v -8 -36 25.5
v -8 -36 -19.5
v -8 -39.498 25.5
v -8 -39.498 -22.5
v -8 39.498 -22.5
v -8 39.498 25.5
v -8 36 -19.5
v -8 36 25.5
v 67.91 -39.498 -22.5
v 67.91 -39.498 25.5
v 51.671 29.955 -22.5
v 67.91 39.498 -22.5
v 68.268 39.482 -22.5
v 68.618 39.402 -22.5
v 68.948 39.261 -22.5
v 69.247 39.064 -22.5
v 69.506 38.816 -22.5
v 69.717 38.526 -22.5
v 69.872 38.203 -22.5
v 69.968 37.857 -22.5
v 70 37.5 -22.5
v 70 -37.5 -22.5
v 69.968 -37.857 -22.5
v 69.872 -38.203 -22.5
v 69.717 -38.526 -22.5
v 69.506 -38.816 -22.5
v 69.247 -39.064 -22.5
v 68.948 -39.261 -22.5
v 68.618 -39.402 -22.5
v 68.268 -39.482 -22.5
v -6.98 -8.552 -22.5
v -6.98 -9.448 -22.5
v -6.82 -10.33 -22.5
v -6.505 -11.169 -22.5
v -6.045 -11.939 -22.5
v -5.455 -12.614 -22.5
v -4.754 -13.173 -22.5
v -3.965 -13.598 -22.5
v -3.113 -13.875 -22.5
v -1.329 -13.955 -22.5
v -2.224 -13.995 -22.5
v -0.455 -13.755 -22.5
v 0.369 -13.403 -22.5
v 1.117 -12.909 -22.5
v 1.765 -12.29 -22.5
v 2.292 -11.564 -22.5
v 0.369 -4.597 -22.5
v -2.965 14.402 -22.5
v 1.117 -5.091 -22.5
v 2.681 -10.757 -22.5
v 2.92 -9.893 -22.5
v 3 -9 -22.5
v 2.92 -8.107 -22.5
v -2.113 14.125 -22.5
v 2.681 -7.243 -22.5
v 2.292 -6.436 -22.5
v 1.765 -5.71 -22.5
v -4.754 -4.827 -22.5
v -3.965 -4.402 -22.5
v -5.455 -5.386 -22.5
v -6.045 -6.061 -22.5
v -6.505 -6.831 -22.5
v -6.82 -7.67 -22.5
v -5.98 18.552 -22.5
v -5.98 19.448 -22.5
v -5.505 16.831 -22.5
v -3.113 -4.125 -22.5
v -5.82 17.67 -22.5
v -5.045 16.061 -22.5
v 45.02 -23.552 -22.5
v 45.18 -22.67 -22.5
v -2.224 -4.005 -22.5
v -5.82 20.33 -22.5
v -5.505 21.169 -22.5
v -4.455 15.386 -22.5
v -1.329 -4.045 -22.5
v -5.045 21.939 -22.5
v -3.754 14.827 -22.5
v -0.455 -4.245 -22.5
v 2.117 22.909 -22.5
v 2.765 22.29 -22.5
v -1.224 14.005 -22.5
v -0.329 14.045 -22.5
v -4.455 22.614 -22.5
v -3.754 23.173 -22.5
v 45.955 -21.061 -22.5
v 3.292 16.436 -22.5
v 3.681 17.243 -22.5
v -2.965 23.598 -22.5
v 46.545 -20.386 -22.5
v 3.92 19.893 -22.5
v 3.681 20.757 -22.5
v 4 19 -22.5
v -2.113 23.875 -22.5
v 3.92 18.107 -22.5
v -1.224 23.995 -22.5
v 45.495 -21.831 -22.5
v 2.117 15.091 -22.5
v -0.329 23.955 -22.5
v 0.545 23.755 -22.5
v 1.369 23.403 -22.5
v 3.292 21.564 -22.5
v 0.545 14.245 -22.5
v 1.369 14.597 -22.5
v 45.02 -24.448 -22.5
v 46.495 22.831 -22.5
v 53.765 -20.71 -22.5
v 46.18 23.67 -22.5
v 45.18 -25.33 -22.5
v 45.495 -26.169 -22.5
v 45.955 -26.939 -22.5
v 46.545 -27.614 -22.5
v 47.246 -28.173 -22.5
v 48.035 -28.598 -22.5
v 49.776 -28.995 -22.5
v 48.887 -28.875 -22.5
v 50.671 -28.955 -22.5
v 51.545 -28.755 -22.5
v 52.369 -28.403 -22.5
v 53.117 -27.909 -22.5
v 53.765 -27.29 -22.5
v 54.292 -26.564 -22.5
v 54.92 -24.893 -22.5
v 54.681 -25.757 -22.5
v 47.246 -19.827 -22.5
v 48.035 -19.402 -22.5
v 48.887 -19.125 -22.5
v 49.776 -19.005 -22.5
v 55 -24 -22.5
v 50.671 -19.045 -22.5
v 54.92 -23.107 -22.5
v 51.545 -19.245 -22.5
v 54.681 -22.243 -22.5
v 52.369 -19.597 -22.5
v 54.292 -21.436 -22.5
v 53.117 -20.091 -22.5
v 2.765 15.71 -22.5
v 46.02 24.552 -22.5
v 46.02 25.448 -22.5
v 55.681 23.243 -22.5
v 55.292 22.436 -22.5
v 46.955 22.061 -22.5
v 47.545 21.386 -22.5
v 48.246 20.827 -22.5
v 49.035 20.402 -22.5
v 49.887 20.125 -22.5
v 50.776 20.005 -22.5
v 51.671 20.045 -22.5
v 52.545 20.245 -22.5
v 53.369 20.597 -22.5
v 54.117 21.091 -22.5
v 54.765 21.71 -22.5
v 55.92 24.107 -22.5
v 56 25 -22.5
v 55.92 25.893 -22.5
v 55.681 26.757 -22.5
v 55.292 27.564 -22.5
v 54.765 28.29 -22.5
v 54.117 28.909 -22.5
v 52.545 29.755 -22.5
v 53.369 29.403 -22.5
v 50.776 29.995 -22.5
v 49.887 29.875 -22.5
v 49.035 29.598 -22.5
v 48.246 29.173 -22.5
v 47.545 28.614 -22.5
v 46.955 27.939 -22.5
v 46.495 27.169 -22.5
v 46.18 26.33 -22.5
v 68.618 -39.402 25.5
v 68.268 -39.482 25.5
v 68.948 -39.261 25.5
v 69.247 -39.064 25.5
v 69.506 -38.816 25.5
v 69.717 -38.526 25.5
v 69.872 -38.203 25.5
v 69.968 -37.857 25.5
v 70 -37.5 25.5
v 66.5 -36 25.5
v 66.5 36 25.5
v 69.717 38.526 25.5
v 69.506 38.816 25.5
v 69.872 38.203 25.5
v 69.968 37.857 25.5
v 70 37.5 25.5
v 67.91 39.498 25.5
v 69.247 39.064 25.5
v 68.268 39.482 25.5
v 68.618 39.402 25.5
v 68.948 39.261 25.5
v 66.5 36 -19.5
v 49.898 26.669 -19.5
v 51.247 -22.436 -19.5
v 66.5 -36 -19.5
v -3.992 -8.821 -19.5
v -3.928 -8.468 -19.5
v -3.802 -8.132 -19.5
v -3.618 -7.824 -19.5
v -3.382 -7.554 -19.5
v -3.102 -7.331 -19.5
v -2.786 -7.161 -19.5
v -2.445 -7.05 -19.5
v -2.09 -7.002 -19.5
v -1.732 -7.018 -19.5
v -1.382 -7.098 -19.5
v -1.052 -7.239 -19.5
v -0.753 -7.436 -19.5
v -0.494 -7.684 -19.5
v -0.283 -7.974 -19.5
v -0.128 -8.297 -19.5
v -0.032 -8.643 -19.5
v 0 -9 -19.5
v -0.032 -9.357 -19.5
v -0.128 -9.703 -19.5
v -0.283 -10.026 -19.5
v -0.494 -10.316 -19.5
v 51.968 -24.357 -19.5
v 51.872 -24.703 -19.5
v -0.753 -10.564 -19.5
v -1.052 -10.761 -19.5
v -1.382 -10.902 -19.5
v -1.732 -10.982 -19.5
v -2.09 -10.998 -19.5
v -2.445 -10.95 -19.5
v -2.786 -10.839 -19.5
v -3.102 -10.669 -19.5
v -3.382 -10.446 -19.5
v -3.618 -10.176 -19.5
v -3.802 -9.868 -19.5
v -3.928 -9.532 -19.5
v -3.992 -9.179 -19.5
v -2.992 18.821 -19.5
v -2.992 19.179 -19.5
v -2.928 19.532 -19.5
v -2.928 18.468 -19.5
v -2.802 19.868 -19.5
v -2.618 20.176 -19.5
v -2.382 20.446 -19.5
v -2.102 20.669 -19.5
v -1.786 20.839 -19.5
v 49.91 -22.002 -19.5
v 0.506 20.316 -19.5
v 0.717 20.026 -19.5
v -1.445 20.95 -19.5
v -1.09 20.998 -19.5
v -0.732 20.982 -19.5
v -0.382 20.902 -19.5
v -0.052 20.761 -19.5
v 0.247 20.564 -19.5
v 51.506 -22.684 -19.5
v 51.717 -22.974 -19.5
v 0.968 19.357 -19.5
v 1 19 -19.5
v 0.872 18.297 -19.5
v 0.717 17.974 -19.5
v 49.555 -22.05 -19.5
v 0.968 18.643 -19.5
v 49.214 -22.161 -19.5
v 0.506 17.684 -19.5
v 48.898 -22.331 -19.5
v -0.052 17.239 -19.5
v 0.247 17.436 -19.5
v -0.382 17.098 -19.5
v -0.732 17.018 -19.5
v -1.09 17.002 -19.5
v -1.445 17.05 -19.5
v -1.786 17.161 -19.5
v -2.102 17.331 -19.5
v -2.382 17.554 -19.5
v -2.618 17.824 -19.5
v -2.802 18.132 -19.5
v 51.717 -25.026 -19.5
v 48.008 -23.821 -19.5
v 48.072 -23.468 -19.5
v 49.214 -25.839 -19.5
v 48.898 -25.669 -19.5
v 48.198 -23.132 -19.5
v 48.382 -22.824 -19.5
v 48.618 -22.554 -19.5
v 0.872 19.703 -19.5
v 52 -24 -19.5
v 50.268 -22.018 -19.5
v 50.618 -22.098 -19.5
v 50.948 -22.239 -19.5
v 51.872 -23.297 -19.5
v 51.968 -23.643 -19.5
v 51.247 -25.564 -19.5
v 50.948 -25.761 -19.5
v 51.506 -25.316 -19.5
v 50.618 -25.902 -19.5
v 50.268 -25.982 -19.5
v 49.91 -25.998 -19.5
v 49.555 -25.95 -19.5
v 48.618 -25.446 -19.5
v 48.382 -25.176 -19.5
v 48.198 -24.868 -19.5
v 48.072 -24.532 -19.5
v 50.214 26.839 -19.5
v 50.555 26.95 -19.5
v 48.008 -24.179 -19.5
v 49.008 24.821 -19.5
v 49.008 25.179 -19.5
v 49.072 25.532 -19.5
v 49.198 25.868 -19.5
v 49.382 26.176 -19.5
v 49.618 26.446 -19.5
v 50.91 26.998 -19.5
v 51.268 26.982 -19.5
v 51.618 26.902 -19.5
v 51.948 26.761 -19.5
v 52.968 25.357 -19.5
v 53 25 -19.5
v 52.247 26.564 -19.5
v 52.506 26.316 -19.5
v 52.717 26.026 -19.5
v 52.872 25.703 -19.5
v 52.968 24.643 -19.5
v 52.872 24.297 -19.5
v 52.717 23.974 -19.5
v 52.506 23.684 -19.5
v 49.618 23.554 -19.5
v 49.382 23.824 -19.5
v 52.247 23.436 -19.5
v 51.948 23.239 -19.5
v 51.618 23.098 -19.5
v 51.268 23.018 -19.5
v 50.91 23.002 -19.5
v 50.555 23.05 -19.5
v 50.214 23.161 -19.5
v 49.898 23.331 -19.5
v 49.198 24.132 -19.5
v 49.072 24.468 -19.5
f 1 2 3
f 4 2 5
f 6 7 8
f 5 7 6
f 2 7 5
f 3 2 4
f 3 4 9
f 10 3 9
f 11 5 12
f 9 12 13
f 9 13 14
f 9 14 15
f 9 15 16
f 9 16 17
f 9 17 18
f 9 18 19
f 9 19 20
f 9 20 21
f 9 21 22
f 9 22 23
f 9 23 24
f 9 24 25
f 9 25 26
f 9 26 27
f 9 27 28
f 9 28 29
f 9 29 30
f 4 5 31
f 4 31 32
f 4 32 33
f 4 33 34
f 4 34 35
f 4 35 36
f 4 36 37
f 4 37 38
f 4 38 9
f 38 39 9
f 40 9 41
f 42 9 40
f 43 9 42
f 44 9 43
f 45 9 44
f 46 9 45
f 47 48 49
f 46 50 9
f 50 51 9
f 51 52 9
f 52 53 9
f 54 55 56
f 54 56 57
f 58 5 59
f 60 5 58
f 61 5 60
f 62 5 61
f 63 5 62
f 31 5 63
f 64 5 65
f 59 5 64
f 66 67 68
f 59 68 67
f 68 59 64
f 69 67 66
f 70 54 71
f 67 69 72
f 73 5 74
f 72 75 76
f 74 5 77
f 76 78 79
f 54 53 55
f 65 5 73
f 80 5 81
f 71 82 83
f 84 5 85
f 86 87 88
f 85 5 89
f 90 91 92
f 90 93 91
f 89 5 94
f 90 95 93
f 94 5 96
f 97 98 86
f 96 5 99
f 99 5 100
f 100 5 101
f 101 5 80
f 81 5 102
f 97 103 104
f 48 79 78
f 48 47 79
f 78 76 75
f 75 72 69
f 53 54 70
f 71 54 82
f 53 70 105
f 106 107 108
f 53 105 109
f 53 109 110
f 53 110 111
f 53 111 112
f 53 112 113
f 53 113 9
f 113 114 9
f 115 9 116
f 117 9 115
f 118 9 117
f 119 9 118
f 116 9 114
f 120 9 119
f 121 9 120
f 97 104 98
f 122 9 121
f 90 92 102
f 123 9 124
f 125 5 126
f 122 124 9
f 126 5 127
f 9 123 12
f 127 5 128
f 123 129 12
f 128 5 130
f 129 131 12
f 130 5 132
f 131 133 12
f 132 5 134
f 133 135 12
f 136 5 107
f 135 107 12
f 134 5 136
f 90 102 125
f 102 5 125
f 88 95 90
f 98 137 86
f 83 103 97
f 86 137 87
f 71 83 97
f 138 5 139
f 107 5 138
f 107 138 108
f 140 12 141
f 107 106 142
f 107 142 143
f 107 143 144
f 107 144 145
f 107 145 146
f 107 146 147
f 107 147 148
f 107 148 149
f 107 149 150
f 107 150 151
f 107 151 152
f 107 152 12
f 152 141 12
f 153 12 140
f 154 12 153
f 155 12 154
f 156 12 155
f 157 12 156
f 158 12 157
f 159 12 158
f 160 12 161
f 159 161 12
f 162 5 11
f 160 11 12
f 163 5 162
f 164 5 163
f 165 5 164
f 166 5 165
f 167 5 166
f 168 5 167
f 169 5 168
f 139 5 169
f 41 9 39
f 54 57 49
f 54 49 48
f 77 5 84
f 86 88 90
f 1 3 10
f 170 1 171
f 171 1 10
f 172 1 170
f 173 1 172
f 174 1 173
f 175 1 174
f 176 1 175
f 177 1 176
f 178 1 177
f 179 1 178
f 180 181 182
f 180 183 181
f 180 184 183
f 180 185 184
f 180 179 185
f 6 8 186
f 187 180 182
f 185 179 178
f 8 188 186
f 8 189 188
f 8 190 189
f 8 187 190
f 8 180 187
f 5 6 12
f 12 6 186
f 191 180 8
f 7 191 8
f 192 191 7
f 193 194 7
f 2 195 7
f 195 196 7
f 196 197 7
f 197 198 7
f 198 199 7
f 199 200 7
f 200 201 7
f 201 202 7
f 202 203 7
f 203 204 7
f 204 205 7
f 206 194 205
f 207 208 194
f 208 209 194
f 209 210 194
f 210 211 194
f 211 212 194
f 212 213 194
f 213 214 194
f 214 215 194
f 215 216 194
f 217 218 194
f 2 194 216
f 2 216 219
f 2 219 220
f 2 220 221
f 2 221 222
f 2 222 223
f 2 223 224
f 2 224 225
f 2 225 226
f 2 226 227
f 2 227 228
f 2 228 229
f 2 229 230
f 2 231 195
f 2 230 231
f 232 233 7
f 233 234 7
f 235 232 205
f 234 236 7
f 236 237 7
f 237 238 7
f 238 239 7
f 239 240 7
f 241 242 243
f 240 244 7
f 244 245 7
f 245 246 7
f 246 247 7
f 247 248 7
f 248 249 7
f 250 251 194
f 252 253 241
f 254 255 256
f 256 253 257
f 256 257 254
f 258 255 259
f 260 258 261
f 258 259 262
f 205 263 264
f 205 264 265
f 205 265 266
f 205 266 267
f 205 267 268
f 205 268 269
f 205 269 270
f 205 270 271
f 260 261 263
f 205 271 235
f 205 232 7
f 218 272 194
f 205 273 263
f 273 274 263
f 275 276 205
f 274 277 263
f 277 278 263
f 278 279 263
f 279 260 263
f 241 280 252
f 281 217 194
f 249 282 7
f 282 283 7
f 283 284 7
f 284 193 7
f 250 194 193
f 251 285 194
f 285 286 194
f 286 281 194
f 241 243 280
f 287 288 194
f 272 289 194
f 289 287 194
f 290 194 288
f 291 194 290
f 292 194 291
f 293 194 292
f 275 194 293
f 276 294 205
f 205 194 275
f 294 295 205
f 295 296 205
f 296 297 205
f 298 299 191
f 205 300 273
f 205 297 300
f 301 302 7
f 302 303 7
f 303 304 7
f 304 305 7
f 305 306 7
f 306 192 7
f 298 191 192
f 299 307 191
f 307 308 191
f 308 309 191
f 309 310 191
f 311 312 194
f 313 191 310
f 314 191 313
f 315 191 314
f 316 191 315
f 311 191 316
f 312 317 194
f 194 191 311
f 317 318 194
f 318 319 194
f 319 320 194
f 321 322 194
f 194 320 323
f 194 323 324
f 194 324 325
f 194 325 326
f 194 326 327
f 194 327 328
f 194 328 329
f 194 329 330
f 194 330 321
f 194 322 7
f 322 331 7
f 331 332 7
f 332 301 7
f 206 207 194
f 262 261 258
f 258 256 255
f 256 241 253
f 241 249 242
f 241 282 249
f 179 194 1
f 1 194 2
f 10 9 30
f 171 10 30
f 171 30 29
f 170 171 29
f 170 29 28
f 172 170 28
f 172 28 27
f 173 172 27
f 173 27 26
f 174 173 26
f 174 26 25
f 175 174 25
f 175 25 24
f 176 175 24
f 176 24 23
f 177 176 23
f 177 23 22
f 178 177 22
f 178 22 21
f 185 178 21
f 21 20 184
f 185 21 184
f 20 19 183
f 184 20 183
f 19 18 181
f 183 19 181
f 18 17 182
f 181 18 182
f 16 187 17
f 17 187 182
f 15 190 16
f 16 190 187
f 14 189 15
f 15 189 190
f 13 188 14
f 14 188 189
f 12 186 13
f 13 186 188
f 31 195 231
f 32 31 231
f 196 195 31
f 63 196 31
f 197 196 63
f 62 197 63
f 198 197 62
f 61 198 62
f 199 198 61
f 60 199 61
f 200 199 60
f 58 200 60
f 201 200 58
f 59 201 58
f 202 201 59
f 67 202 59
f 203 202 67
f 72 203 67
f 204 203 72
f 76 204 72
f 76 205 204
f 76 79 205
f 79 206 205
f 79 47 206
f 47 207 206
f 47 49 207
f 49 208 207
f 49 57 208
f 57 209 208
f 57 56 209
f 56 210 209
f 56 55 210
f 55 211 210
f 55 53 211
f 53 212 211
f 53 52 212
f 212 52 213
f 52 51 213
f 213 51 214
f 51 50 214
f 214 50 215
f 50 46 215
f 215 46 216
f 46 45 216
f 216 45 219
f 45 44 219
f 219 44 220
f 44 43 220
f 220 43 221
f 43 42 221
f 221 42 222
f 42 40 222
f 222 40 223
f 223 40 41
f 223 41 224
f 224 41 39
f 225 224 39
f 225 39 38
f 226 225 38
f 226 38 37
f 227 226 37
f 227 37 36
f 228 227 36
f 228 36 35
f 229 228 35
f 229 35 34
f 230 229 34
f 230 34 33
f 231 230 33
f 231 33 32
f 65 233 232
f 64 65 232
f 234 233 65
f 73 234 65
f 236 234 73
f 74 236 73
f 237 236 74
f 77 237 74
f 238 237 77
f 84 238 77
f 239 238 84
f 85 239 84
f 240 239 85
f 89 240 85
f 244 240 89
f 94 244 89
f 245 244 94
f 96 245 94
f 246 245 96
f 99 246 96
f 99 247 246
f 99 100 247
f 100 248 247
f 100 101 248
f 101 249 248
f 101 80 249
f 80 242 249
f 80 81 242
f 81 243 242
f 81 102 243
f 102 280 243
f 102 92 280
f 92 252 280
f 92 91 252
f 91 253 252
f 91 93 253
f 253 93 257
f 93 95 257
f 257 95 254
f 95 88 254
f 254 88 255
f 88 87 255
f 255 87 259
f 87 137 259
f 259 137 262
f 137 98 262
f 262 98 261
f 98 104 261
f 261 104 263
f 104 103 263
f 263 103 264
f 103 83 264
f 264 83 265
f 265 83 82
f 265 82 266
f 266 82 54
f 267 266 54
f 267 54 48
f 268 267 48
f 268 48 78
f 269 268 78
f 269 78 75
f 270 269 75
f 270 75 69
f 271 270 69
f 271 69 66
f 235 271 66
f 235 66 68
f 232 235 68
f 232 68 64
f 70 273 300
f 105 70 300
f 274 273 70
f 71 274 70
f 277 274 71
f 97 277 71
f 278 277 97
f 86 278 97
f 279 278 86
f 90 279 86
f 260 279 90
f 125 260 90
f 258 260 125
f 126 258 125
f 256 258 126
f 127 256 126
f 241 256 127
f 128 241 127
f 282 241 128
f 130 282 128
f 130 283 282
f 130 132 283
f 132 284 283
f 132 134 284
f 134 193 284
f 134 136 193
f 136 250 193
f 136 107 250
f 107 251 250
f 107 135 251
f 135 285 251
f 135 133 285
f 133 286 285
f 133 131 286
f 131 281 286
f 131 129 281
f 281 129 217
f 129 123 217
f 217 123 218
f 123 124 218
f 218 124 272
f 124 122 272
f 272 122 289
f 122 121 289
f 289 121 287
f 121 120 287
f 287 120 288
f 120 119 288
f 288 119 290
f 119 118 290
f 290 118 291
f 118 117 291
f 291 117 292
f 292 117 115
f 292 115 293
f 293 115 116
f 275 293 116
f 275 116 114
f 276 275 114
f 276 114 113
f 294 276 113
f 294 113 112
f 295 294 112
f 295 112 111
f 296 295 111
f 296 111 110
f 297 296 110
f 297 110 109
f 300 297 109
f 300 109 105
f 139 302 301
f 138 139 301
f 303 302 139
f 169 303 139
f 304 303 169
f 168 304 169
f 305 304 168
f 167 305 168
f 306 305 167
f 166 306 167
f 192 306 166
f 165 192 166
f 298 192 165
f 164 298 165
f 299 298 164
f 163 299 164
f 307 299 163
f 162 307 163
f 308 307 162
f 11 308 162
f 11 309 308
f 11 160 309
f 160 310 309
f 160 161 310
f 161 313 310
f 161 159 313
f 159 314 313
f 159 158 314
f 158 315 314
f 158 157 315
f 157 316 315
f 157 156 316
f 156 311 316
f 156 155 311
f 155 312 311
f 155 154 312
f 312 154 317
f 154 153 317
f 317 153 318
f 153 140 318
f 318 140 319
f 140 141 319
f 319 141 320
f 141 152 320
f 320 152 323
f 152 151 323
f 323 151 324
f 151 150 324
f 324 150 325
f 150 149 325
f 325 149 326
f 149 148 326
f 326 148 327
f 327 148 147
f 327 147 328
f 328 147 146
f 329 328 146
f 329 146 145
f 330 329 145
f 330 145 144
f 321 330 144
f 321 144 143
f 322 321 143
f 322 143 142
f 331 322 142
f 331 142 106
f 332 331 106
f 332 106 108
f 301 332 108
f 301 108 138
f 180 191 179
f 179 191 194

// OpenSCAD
/* general variables */
	fn = 35;				//number of polygons used to approximate a curve
	io = 1;					//scale to whatever an iota or smidge is on your numeric scale
	cc = 5;					//correction factor to ensure that joins of orthogonal cylinders work as intended

	/* cuvette holder dimensions */
	bsw = 45;				//width between screw holes
	chxf = 2;				//division factor for x-coord of cuvette holder's position relative to center of case
	cutx = 8;				//distance from origin for cutting (zy) plane to separate front and back case halves

	/* mounting screw/bolt dimensions */
	shw = 5;				//screw head width
	ssw = 2;				//screw shaft width
	ssh = 12;				//screw shaft height

	/* case wall */
	ww0 = 75;				//base width before minkowski (edge-rounding)
	wd0 = 136;				//base depth before minkowski (edge-rounding)
	mnk = 2;				//minkowski radius (for corner-rounding)
	ww = ww0 + mnk;		//effective width of cuvette holder
	wh = 45;				//base height
	wt = 3;					//wall thickness
	bt = 3;					//base thickness
	bhw = 2;				//base hole width

	/* arduino dimensions */ 
		/*NB: aruino screwholes are numbered clockwise around the board, 
		looking at it from above and taking the barrel port as 12 o'clock. 
		X and Y coords are measured relative to the board corner nearest the barrel port,
		with the X-axis aligned with the ATMega chip, to match the axes in the case bottom SCAD file*/
	aush1y = 51;			//X-coord of 1st screwhole on the arduino uno r3 board (see above)
	aush1x = 15;			//Y-coord of 1st screwhole on the arduino uno r3 board (see above)
	aush2y = 36;			//....
	aush2x = 67;
	aush3y = 8;
	aush3x = 66;
	aush4y = 2;
	aush4x = 14;
	auby = 54;				//width of arduino uno board
	aubx = 69;				//length of arduino uno board

module screwhole() {cylinder(r1 = shw, r2=ssw, h=bt, center=false, $fn=fn);}

module case_bottom()
{
	/* construction code */
	union(){
		difference(){
			minkowski(){cube([wd0,ww0,wh], center=true);cylinder(r=mnk,h=wt, $fn=fn);}
			translate([0,0,bt])	cube([wd0-wt, ww0-wt, wh], center=true);
			
			translate([-ww0/chxf -bsw/2, -bsw/2,-wh/2]) screwhole();
			translate([-ww0/chxf +bsw/2, -bsw/2,-wh/2]) screwhole();
			translate([-ww0/chxf -bsw/2, +bsw/2,-wh/2]) screwhole();
			translate([-ww0/chxf +bsw/2, +bsw/2,-wh/2]) screwhole();

			translate([wd0/2-wt-aush1x, auby/2-aush1y, -bsw/2]) screwhole();
			translate([wd0/2-wt-aush2x, auby/2-aush2y, -bsw/2]) screwhole();
			translate([wd0/2-wt-aush3x, auby/2-aush3y, -bsw/2]) screwhole();
			translate([wd0/2-wt-aush4x, auby/2-aush4y, -bsw/2]) screwhole();
	
			translate([-cutx, ww0,-wh/2])	rotate([0,0,180]) cube([wd0,wd0,wd0], center=false);
		}

	}
}

case_bottom();
